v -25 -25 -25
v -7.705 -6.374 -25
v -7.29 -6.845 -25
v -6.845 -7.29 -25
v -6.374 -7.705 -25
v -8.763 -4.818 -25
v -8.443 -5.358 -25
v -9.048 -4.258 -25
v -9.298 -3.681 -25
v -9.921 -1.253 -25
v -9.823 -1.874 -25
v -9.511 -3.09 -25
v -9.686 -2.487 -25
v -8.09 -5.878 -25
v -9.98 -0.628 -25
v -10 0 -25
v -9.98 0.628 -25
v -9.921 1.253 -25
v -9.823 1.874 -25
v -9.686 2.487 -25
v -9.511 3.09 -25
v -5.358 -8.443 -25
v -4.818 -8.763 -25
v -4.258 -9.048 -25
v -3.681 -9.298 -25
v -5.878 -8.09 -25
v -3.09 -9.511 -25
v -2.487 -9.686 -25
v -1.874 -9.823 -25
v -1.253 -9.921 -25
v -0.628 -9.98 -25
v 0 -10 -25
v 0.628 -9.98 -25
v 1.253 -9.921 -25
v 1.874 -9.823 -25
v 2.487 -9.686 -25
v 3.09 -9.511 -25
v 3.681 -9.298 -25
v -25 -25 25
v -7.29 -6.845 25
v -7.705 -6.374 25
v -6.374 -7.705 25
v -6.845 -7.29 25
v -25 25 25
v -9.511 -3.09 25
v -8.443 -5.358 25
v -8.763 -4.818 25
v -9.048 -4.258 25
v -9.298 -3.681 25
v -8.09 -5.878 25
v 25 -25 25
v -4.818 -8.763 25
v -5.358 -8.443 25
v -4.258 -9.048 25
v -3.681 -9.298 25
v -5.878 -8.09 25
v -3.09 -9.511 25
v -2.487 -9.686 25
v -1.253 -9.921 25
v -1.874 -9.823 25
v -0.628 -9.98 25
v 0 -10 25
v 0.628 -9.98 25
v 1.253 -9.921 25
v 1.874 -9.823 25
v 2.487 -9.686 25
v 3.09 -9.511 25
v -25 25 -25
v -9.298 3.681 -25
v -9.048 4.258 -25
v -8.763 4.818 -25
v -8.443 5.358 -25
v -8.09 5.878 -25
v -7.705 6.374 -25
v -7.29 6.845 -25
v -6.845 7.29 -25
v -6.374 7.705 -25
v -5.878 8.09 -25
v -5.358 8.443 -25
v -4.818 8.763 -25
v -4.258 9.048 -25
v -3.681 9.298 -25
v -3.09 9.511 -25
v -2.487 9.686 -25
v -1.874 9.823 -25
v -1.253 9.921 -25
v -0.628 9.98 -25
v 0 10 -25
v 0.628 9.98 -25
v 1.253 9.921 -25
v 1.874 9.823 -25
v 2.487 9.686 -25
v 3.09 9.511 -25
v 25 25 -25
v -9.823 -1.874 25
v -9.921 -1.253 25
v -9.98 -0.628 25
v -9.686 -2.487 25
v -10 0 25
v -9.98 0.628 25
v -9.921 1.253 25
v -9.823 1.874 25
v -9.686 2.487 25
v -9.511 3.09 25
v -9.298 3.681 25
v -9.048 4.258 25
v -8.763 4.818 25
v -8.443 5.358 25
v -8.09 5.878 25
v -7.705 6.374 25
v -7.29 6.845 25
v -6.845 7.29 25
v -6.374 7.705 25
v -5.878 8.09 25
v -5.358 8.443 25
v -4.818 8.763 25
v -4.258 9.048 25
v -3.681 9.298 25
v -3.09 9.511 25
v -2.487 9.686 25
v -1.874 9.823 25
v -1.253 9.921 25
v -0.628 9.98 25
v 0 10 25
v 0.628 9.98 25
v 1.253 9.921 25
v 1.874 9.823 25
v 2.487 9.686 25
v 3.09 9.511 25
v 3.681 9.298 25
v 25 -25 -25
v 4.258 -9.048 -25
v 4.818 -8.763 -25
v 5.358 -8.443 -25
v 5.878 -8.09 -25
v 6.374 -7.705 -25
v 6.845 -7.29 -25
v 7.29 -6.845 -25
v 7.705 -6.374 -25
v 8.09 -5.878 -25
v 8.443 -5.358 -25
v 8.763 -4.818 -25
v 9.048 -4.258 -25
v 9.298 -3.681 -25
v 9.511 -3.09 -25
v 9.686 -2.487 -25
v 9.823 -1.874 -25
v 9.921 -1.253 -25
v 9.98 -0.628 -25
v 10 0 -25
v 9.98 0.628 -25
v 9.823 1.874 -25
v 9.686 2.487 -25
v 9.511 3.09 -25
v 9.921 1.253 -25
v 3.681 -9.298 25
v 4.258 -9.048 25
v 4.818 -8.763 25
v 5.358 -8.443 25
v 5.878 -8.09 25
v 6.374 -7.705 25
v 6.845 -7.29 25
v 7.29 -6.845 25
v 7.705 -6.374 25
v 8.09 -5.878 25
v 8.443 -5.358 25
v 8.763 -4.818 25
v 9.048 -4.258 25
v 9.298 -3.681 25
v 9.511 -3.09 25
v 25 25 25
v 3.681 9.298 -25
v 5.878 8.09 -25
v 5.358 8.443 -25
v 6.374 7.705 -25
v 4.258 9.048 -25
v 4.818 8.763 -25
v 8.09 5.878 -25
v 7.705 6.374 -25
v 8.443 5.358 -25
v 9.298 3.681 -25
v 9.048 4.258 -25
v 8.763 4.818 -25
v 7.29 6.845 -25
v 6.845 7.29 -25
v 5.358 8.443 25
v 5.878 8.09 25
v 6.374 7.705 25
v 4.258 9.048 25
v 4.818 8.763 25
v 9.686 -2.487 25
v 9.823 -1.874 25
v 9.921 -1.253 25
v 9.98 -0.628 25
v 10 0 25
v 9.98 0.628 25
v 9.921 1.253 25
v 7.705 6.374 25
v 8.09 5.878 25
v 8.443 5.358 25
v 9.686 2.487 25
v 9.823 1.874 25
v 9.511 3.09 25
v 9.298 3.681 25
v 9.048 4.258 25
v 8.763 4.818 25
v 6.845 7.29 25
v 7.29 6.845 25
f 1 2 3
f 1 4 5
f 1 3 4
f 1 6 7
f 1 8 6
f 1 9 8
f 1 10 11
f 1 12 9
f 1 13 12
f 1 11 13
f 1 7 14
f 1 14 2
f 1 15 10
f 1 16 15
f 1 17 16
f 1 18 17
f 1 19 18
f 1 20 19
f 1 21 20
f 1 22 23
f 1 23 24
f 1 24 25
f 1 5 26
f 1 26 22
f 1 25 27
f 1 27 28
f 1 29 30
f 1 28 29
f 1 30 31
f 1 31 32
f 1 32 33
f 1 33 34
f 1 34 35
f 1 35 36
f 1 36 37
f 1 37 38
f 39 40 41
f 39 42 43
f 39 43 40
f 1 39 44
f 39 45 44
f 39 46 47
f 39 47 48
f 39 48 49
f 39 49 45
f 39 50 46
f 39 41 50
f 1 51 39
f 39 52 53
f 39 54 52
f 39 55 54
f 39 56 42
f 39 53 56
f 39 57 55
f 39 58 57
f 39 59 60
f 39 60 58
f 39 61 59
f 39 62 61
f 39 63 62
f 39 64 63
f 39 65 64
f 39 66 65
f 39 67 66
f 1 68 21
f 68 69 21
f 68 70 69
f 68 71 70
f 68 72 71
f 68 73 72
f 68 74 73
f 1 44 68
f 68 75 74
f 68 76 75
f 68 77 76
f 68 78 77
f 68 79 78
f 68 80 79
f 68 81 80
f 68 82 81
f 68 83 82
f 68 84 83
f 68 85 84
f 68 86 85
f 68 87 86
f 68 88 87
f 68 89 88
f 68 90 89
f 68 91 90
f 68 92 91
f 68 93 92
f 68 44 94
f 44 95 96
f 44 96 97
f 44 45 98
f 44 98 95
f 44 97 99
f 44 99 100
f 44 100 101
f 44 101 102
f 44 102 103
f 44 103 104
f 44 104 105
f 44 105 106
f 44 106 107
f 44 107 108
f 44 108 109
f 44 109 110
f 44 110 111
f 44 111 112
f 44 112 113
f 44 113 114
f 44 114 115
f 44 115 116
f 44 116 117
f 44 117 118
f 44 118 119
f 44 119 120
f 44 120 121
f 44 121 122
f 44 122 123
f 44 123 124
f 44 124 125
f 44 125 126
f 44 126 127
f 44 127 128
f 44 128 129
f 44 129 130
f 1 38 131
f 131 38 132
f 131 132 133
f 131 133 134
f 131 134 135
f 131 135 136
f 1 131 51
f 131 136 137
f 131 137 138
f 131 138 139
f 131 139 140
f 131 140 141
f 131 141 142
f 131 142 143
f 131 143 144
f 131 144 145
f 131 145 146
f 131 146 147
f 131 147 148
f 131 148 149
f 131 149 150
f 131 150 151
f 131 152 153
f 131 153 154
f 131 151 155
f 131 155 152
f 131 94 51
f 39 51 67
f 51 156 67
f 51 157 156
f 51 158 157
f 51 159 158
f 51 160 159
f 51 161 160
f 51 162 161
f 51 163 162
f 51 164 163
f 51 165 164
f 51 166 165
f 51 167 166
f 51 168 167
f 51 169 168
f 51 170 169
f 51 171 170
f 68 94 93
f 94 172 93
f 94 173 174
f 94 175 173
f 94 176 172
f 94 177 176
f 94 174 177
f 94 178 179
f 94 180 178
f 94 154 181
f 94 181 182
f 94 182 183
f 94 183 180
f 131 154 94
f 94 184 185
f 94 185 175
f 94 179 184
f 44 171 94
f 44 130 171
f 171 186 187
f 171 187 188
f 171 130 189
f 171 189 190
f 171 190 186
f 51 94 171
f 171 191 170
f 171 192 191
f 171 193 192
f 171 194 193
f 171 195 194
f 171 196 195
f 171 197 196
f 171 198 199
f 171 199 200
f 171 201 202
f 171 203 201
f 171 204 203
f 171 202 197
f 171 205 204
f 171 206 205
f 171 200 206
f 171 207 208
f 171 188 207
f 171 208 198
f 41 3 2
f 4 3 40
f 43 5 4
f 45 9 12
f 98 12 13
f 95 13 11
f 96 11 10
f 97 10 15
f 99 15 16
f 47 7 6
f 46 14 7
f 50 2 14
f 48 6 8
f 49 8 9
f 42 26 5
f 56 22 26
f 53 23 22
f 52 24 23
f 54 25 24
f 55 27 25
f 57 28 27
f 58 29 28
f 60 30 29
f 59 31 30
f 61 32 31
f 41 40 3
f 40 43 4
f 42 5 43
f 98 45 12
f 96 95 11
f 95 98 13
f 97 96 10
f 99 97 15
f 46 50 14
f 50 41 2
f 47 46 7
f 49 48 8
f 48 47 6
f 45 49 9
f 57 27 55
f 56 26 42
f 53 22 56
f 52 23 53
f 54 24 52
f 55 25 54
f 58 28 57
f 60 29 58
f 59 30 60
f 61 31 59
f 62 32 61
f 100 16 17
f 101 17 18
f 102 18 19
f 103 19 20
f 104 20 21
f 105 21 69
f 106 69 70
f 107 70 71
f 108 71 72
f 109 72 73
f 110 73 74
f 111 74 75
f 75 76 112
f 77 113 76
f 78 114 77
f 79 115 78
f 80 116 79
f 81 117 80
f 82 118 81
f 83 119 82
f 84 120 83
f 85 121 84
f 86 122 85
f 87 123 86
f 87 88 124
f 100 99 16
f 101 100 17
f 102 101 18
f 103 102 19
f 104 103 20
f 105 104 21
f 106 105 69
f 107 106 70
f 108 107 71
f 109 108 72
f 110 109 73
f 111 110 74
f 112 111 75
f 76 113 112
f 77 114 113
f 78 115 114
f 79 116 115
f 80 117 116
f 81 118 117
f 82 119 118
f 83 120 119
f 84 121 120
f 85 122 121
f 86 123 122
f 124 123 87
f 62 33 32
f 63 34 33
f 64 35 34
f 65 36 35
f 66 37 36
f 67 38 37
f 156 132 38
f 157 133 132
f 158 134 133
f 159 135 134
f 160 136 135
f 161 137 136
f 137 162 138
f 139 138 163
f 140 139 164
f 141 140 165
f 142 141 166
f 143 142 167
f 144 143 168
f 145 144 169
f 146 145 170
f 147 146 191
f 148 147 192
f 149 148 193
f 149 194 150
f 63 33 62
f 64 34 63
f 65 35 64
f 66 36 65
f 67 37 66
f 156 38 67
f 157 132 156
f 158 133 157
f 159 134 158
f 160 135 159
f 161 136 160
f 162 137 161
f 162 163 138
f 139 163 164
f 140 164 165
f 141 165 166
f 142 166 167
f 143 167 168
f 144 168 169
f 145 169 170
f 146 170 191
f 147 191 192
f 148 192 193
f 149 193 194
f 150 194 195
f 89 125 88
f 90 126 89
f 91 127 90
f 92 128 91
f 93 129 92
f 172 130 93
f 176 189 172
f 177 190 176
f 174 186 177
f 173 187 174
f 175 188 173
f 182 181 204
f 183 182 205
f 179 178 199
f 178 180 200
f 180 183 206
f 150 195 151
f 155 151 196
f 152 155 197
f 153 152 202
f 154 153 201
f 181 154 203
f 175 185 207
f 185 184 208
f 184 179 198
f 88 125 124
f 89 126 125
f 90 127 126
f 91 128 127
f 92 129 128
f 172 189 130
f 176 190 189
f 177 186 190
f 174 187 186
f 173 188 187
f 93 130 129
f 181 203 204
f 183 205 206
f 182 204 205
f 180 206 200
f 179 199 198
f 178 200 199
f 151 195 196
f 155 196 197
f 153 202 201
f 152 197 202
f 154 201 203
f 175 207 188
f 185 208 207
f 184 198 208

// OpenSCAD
// 50mm 角の立方体に直径 20mm の貫通穴（z軸方向）

$fn = 100;

cube_size = 50;
hole_d = 20;

difference() {
    // 中心を原点に配置した 50mm 角の立方体
    cube([cube_size, cube_size, cube_size], center = true);

    // z 軸方向の貫通穴（少し長めにして確実に貫通させる）
    cylinder(h = cube_size + 2, d = hole_d, center = true);
}
